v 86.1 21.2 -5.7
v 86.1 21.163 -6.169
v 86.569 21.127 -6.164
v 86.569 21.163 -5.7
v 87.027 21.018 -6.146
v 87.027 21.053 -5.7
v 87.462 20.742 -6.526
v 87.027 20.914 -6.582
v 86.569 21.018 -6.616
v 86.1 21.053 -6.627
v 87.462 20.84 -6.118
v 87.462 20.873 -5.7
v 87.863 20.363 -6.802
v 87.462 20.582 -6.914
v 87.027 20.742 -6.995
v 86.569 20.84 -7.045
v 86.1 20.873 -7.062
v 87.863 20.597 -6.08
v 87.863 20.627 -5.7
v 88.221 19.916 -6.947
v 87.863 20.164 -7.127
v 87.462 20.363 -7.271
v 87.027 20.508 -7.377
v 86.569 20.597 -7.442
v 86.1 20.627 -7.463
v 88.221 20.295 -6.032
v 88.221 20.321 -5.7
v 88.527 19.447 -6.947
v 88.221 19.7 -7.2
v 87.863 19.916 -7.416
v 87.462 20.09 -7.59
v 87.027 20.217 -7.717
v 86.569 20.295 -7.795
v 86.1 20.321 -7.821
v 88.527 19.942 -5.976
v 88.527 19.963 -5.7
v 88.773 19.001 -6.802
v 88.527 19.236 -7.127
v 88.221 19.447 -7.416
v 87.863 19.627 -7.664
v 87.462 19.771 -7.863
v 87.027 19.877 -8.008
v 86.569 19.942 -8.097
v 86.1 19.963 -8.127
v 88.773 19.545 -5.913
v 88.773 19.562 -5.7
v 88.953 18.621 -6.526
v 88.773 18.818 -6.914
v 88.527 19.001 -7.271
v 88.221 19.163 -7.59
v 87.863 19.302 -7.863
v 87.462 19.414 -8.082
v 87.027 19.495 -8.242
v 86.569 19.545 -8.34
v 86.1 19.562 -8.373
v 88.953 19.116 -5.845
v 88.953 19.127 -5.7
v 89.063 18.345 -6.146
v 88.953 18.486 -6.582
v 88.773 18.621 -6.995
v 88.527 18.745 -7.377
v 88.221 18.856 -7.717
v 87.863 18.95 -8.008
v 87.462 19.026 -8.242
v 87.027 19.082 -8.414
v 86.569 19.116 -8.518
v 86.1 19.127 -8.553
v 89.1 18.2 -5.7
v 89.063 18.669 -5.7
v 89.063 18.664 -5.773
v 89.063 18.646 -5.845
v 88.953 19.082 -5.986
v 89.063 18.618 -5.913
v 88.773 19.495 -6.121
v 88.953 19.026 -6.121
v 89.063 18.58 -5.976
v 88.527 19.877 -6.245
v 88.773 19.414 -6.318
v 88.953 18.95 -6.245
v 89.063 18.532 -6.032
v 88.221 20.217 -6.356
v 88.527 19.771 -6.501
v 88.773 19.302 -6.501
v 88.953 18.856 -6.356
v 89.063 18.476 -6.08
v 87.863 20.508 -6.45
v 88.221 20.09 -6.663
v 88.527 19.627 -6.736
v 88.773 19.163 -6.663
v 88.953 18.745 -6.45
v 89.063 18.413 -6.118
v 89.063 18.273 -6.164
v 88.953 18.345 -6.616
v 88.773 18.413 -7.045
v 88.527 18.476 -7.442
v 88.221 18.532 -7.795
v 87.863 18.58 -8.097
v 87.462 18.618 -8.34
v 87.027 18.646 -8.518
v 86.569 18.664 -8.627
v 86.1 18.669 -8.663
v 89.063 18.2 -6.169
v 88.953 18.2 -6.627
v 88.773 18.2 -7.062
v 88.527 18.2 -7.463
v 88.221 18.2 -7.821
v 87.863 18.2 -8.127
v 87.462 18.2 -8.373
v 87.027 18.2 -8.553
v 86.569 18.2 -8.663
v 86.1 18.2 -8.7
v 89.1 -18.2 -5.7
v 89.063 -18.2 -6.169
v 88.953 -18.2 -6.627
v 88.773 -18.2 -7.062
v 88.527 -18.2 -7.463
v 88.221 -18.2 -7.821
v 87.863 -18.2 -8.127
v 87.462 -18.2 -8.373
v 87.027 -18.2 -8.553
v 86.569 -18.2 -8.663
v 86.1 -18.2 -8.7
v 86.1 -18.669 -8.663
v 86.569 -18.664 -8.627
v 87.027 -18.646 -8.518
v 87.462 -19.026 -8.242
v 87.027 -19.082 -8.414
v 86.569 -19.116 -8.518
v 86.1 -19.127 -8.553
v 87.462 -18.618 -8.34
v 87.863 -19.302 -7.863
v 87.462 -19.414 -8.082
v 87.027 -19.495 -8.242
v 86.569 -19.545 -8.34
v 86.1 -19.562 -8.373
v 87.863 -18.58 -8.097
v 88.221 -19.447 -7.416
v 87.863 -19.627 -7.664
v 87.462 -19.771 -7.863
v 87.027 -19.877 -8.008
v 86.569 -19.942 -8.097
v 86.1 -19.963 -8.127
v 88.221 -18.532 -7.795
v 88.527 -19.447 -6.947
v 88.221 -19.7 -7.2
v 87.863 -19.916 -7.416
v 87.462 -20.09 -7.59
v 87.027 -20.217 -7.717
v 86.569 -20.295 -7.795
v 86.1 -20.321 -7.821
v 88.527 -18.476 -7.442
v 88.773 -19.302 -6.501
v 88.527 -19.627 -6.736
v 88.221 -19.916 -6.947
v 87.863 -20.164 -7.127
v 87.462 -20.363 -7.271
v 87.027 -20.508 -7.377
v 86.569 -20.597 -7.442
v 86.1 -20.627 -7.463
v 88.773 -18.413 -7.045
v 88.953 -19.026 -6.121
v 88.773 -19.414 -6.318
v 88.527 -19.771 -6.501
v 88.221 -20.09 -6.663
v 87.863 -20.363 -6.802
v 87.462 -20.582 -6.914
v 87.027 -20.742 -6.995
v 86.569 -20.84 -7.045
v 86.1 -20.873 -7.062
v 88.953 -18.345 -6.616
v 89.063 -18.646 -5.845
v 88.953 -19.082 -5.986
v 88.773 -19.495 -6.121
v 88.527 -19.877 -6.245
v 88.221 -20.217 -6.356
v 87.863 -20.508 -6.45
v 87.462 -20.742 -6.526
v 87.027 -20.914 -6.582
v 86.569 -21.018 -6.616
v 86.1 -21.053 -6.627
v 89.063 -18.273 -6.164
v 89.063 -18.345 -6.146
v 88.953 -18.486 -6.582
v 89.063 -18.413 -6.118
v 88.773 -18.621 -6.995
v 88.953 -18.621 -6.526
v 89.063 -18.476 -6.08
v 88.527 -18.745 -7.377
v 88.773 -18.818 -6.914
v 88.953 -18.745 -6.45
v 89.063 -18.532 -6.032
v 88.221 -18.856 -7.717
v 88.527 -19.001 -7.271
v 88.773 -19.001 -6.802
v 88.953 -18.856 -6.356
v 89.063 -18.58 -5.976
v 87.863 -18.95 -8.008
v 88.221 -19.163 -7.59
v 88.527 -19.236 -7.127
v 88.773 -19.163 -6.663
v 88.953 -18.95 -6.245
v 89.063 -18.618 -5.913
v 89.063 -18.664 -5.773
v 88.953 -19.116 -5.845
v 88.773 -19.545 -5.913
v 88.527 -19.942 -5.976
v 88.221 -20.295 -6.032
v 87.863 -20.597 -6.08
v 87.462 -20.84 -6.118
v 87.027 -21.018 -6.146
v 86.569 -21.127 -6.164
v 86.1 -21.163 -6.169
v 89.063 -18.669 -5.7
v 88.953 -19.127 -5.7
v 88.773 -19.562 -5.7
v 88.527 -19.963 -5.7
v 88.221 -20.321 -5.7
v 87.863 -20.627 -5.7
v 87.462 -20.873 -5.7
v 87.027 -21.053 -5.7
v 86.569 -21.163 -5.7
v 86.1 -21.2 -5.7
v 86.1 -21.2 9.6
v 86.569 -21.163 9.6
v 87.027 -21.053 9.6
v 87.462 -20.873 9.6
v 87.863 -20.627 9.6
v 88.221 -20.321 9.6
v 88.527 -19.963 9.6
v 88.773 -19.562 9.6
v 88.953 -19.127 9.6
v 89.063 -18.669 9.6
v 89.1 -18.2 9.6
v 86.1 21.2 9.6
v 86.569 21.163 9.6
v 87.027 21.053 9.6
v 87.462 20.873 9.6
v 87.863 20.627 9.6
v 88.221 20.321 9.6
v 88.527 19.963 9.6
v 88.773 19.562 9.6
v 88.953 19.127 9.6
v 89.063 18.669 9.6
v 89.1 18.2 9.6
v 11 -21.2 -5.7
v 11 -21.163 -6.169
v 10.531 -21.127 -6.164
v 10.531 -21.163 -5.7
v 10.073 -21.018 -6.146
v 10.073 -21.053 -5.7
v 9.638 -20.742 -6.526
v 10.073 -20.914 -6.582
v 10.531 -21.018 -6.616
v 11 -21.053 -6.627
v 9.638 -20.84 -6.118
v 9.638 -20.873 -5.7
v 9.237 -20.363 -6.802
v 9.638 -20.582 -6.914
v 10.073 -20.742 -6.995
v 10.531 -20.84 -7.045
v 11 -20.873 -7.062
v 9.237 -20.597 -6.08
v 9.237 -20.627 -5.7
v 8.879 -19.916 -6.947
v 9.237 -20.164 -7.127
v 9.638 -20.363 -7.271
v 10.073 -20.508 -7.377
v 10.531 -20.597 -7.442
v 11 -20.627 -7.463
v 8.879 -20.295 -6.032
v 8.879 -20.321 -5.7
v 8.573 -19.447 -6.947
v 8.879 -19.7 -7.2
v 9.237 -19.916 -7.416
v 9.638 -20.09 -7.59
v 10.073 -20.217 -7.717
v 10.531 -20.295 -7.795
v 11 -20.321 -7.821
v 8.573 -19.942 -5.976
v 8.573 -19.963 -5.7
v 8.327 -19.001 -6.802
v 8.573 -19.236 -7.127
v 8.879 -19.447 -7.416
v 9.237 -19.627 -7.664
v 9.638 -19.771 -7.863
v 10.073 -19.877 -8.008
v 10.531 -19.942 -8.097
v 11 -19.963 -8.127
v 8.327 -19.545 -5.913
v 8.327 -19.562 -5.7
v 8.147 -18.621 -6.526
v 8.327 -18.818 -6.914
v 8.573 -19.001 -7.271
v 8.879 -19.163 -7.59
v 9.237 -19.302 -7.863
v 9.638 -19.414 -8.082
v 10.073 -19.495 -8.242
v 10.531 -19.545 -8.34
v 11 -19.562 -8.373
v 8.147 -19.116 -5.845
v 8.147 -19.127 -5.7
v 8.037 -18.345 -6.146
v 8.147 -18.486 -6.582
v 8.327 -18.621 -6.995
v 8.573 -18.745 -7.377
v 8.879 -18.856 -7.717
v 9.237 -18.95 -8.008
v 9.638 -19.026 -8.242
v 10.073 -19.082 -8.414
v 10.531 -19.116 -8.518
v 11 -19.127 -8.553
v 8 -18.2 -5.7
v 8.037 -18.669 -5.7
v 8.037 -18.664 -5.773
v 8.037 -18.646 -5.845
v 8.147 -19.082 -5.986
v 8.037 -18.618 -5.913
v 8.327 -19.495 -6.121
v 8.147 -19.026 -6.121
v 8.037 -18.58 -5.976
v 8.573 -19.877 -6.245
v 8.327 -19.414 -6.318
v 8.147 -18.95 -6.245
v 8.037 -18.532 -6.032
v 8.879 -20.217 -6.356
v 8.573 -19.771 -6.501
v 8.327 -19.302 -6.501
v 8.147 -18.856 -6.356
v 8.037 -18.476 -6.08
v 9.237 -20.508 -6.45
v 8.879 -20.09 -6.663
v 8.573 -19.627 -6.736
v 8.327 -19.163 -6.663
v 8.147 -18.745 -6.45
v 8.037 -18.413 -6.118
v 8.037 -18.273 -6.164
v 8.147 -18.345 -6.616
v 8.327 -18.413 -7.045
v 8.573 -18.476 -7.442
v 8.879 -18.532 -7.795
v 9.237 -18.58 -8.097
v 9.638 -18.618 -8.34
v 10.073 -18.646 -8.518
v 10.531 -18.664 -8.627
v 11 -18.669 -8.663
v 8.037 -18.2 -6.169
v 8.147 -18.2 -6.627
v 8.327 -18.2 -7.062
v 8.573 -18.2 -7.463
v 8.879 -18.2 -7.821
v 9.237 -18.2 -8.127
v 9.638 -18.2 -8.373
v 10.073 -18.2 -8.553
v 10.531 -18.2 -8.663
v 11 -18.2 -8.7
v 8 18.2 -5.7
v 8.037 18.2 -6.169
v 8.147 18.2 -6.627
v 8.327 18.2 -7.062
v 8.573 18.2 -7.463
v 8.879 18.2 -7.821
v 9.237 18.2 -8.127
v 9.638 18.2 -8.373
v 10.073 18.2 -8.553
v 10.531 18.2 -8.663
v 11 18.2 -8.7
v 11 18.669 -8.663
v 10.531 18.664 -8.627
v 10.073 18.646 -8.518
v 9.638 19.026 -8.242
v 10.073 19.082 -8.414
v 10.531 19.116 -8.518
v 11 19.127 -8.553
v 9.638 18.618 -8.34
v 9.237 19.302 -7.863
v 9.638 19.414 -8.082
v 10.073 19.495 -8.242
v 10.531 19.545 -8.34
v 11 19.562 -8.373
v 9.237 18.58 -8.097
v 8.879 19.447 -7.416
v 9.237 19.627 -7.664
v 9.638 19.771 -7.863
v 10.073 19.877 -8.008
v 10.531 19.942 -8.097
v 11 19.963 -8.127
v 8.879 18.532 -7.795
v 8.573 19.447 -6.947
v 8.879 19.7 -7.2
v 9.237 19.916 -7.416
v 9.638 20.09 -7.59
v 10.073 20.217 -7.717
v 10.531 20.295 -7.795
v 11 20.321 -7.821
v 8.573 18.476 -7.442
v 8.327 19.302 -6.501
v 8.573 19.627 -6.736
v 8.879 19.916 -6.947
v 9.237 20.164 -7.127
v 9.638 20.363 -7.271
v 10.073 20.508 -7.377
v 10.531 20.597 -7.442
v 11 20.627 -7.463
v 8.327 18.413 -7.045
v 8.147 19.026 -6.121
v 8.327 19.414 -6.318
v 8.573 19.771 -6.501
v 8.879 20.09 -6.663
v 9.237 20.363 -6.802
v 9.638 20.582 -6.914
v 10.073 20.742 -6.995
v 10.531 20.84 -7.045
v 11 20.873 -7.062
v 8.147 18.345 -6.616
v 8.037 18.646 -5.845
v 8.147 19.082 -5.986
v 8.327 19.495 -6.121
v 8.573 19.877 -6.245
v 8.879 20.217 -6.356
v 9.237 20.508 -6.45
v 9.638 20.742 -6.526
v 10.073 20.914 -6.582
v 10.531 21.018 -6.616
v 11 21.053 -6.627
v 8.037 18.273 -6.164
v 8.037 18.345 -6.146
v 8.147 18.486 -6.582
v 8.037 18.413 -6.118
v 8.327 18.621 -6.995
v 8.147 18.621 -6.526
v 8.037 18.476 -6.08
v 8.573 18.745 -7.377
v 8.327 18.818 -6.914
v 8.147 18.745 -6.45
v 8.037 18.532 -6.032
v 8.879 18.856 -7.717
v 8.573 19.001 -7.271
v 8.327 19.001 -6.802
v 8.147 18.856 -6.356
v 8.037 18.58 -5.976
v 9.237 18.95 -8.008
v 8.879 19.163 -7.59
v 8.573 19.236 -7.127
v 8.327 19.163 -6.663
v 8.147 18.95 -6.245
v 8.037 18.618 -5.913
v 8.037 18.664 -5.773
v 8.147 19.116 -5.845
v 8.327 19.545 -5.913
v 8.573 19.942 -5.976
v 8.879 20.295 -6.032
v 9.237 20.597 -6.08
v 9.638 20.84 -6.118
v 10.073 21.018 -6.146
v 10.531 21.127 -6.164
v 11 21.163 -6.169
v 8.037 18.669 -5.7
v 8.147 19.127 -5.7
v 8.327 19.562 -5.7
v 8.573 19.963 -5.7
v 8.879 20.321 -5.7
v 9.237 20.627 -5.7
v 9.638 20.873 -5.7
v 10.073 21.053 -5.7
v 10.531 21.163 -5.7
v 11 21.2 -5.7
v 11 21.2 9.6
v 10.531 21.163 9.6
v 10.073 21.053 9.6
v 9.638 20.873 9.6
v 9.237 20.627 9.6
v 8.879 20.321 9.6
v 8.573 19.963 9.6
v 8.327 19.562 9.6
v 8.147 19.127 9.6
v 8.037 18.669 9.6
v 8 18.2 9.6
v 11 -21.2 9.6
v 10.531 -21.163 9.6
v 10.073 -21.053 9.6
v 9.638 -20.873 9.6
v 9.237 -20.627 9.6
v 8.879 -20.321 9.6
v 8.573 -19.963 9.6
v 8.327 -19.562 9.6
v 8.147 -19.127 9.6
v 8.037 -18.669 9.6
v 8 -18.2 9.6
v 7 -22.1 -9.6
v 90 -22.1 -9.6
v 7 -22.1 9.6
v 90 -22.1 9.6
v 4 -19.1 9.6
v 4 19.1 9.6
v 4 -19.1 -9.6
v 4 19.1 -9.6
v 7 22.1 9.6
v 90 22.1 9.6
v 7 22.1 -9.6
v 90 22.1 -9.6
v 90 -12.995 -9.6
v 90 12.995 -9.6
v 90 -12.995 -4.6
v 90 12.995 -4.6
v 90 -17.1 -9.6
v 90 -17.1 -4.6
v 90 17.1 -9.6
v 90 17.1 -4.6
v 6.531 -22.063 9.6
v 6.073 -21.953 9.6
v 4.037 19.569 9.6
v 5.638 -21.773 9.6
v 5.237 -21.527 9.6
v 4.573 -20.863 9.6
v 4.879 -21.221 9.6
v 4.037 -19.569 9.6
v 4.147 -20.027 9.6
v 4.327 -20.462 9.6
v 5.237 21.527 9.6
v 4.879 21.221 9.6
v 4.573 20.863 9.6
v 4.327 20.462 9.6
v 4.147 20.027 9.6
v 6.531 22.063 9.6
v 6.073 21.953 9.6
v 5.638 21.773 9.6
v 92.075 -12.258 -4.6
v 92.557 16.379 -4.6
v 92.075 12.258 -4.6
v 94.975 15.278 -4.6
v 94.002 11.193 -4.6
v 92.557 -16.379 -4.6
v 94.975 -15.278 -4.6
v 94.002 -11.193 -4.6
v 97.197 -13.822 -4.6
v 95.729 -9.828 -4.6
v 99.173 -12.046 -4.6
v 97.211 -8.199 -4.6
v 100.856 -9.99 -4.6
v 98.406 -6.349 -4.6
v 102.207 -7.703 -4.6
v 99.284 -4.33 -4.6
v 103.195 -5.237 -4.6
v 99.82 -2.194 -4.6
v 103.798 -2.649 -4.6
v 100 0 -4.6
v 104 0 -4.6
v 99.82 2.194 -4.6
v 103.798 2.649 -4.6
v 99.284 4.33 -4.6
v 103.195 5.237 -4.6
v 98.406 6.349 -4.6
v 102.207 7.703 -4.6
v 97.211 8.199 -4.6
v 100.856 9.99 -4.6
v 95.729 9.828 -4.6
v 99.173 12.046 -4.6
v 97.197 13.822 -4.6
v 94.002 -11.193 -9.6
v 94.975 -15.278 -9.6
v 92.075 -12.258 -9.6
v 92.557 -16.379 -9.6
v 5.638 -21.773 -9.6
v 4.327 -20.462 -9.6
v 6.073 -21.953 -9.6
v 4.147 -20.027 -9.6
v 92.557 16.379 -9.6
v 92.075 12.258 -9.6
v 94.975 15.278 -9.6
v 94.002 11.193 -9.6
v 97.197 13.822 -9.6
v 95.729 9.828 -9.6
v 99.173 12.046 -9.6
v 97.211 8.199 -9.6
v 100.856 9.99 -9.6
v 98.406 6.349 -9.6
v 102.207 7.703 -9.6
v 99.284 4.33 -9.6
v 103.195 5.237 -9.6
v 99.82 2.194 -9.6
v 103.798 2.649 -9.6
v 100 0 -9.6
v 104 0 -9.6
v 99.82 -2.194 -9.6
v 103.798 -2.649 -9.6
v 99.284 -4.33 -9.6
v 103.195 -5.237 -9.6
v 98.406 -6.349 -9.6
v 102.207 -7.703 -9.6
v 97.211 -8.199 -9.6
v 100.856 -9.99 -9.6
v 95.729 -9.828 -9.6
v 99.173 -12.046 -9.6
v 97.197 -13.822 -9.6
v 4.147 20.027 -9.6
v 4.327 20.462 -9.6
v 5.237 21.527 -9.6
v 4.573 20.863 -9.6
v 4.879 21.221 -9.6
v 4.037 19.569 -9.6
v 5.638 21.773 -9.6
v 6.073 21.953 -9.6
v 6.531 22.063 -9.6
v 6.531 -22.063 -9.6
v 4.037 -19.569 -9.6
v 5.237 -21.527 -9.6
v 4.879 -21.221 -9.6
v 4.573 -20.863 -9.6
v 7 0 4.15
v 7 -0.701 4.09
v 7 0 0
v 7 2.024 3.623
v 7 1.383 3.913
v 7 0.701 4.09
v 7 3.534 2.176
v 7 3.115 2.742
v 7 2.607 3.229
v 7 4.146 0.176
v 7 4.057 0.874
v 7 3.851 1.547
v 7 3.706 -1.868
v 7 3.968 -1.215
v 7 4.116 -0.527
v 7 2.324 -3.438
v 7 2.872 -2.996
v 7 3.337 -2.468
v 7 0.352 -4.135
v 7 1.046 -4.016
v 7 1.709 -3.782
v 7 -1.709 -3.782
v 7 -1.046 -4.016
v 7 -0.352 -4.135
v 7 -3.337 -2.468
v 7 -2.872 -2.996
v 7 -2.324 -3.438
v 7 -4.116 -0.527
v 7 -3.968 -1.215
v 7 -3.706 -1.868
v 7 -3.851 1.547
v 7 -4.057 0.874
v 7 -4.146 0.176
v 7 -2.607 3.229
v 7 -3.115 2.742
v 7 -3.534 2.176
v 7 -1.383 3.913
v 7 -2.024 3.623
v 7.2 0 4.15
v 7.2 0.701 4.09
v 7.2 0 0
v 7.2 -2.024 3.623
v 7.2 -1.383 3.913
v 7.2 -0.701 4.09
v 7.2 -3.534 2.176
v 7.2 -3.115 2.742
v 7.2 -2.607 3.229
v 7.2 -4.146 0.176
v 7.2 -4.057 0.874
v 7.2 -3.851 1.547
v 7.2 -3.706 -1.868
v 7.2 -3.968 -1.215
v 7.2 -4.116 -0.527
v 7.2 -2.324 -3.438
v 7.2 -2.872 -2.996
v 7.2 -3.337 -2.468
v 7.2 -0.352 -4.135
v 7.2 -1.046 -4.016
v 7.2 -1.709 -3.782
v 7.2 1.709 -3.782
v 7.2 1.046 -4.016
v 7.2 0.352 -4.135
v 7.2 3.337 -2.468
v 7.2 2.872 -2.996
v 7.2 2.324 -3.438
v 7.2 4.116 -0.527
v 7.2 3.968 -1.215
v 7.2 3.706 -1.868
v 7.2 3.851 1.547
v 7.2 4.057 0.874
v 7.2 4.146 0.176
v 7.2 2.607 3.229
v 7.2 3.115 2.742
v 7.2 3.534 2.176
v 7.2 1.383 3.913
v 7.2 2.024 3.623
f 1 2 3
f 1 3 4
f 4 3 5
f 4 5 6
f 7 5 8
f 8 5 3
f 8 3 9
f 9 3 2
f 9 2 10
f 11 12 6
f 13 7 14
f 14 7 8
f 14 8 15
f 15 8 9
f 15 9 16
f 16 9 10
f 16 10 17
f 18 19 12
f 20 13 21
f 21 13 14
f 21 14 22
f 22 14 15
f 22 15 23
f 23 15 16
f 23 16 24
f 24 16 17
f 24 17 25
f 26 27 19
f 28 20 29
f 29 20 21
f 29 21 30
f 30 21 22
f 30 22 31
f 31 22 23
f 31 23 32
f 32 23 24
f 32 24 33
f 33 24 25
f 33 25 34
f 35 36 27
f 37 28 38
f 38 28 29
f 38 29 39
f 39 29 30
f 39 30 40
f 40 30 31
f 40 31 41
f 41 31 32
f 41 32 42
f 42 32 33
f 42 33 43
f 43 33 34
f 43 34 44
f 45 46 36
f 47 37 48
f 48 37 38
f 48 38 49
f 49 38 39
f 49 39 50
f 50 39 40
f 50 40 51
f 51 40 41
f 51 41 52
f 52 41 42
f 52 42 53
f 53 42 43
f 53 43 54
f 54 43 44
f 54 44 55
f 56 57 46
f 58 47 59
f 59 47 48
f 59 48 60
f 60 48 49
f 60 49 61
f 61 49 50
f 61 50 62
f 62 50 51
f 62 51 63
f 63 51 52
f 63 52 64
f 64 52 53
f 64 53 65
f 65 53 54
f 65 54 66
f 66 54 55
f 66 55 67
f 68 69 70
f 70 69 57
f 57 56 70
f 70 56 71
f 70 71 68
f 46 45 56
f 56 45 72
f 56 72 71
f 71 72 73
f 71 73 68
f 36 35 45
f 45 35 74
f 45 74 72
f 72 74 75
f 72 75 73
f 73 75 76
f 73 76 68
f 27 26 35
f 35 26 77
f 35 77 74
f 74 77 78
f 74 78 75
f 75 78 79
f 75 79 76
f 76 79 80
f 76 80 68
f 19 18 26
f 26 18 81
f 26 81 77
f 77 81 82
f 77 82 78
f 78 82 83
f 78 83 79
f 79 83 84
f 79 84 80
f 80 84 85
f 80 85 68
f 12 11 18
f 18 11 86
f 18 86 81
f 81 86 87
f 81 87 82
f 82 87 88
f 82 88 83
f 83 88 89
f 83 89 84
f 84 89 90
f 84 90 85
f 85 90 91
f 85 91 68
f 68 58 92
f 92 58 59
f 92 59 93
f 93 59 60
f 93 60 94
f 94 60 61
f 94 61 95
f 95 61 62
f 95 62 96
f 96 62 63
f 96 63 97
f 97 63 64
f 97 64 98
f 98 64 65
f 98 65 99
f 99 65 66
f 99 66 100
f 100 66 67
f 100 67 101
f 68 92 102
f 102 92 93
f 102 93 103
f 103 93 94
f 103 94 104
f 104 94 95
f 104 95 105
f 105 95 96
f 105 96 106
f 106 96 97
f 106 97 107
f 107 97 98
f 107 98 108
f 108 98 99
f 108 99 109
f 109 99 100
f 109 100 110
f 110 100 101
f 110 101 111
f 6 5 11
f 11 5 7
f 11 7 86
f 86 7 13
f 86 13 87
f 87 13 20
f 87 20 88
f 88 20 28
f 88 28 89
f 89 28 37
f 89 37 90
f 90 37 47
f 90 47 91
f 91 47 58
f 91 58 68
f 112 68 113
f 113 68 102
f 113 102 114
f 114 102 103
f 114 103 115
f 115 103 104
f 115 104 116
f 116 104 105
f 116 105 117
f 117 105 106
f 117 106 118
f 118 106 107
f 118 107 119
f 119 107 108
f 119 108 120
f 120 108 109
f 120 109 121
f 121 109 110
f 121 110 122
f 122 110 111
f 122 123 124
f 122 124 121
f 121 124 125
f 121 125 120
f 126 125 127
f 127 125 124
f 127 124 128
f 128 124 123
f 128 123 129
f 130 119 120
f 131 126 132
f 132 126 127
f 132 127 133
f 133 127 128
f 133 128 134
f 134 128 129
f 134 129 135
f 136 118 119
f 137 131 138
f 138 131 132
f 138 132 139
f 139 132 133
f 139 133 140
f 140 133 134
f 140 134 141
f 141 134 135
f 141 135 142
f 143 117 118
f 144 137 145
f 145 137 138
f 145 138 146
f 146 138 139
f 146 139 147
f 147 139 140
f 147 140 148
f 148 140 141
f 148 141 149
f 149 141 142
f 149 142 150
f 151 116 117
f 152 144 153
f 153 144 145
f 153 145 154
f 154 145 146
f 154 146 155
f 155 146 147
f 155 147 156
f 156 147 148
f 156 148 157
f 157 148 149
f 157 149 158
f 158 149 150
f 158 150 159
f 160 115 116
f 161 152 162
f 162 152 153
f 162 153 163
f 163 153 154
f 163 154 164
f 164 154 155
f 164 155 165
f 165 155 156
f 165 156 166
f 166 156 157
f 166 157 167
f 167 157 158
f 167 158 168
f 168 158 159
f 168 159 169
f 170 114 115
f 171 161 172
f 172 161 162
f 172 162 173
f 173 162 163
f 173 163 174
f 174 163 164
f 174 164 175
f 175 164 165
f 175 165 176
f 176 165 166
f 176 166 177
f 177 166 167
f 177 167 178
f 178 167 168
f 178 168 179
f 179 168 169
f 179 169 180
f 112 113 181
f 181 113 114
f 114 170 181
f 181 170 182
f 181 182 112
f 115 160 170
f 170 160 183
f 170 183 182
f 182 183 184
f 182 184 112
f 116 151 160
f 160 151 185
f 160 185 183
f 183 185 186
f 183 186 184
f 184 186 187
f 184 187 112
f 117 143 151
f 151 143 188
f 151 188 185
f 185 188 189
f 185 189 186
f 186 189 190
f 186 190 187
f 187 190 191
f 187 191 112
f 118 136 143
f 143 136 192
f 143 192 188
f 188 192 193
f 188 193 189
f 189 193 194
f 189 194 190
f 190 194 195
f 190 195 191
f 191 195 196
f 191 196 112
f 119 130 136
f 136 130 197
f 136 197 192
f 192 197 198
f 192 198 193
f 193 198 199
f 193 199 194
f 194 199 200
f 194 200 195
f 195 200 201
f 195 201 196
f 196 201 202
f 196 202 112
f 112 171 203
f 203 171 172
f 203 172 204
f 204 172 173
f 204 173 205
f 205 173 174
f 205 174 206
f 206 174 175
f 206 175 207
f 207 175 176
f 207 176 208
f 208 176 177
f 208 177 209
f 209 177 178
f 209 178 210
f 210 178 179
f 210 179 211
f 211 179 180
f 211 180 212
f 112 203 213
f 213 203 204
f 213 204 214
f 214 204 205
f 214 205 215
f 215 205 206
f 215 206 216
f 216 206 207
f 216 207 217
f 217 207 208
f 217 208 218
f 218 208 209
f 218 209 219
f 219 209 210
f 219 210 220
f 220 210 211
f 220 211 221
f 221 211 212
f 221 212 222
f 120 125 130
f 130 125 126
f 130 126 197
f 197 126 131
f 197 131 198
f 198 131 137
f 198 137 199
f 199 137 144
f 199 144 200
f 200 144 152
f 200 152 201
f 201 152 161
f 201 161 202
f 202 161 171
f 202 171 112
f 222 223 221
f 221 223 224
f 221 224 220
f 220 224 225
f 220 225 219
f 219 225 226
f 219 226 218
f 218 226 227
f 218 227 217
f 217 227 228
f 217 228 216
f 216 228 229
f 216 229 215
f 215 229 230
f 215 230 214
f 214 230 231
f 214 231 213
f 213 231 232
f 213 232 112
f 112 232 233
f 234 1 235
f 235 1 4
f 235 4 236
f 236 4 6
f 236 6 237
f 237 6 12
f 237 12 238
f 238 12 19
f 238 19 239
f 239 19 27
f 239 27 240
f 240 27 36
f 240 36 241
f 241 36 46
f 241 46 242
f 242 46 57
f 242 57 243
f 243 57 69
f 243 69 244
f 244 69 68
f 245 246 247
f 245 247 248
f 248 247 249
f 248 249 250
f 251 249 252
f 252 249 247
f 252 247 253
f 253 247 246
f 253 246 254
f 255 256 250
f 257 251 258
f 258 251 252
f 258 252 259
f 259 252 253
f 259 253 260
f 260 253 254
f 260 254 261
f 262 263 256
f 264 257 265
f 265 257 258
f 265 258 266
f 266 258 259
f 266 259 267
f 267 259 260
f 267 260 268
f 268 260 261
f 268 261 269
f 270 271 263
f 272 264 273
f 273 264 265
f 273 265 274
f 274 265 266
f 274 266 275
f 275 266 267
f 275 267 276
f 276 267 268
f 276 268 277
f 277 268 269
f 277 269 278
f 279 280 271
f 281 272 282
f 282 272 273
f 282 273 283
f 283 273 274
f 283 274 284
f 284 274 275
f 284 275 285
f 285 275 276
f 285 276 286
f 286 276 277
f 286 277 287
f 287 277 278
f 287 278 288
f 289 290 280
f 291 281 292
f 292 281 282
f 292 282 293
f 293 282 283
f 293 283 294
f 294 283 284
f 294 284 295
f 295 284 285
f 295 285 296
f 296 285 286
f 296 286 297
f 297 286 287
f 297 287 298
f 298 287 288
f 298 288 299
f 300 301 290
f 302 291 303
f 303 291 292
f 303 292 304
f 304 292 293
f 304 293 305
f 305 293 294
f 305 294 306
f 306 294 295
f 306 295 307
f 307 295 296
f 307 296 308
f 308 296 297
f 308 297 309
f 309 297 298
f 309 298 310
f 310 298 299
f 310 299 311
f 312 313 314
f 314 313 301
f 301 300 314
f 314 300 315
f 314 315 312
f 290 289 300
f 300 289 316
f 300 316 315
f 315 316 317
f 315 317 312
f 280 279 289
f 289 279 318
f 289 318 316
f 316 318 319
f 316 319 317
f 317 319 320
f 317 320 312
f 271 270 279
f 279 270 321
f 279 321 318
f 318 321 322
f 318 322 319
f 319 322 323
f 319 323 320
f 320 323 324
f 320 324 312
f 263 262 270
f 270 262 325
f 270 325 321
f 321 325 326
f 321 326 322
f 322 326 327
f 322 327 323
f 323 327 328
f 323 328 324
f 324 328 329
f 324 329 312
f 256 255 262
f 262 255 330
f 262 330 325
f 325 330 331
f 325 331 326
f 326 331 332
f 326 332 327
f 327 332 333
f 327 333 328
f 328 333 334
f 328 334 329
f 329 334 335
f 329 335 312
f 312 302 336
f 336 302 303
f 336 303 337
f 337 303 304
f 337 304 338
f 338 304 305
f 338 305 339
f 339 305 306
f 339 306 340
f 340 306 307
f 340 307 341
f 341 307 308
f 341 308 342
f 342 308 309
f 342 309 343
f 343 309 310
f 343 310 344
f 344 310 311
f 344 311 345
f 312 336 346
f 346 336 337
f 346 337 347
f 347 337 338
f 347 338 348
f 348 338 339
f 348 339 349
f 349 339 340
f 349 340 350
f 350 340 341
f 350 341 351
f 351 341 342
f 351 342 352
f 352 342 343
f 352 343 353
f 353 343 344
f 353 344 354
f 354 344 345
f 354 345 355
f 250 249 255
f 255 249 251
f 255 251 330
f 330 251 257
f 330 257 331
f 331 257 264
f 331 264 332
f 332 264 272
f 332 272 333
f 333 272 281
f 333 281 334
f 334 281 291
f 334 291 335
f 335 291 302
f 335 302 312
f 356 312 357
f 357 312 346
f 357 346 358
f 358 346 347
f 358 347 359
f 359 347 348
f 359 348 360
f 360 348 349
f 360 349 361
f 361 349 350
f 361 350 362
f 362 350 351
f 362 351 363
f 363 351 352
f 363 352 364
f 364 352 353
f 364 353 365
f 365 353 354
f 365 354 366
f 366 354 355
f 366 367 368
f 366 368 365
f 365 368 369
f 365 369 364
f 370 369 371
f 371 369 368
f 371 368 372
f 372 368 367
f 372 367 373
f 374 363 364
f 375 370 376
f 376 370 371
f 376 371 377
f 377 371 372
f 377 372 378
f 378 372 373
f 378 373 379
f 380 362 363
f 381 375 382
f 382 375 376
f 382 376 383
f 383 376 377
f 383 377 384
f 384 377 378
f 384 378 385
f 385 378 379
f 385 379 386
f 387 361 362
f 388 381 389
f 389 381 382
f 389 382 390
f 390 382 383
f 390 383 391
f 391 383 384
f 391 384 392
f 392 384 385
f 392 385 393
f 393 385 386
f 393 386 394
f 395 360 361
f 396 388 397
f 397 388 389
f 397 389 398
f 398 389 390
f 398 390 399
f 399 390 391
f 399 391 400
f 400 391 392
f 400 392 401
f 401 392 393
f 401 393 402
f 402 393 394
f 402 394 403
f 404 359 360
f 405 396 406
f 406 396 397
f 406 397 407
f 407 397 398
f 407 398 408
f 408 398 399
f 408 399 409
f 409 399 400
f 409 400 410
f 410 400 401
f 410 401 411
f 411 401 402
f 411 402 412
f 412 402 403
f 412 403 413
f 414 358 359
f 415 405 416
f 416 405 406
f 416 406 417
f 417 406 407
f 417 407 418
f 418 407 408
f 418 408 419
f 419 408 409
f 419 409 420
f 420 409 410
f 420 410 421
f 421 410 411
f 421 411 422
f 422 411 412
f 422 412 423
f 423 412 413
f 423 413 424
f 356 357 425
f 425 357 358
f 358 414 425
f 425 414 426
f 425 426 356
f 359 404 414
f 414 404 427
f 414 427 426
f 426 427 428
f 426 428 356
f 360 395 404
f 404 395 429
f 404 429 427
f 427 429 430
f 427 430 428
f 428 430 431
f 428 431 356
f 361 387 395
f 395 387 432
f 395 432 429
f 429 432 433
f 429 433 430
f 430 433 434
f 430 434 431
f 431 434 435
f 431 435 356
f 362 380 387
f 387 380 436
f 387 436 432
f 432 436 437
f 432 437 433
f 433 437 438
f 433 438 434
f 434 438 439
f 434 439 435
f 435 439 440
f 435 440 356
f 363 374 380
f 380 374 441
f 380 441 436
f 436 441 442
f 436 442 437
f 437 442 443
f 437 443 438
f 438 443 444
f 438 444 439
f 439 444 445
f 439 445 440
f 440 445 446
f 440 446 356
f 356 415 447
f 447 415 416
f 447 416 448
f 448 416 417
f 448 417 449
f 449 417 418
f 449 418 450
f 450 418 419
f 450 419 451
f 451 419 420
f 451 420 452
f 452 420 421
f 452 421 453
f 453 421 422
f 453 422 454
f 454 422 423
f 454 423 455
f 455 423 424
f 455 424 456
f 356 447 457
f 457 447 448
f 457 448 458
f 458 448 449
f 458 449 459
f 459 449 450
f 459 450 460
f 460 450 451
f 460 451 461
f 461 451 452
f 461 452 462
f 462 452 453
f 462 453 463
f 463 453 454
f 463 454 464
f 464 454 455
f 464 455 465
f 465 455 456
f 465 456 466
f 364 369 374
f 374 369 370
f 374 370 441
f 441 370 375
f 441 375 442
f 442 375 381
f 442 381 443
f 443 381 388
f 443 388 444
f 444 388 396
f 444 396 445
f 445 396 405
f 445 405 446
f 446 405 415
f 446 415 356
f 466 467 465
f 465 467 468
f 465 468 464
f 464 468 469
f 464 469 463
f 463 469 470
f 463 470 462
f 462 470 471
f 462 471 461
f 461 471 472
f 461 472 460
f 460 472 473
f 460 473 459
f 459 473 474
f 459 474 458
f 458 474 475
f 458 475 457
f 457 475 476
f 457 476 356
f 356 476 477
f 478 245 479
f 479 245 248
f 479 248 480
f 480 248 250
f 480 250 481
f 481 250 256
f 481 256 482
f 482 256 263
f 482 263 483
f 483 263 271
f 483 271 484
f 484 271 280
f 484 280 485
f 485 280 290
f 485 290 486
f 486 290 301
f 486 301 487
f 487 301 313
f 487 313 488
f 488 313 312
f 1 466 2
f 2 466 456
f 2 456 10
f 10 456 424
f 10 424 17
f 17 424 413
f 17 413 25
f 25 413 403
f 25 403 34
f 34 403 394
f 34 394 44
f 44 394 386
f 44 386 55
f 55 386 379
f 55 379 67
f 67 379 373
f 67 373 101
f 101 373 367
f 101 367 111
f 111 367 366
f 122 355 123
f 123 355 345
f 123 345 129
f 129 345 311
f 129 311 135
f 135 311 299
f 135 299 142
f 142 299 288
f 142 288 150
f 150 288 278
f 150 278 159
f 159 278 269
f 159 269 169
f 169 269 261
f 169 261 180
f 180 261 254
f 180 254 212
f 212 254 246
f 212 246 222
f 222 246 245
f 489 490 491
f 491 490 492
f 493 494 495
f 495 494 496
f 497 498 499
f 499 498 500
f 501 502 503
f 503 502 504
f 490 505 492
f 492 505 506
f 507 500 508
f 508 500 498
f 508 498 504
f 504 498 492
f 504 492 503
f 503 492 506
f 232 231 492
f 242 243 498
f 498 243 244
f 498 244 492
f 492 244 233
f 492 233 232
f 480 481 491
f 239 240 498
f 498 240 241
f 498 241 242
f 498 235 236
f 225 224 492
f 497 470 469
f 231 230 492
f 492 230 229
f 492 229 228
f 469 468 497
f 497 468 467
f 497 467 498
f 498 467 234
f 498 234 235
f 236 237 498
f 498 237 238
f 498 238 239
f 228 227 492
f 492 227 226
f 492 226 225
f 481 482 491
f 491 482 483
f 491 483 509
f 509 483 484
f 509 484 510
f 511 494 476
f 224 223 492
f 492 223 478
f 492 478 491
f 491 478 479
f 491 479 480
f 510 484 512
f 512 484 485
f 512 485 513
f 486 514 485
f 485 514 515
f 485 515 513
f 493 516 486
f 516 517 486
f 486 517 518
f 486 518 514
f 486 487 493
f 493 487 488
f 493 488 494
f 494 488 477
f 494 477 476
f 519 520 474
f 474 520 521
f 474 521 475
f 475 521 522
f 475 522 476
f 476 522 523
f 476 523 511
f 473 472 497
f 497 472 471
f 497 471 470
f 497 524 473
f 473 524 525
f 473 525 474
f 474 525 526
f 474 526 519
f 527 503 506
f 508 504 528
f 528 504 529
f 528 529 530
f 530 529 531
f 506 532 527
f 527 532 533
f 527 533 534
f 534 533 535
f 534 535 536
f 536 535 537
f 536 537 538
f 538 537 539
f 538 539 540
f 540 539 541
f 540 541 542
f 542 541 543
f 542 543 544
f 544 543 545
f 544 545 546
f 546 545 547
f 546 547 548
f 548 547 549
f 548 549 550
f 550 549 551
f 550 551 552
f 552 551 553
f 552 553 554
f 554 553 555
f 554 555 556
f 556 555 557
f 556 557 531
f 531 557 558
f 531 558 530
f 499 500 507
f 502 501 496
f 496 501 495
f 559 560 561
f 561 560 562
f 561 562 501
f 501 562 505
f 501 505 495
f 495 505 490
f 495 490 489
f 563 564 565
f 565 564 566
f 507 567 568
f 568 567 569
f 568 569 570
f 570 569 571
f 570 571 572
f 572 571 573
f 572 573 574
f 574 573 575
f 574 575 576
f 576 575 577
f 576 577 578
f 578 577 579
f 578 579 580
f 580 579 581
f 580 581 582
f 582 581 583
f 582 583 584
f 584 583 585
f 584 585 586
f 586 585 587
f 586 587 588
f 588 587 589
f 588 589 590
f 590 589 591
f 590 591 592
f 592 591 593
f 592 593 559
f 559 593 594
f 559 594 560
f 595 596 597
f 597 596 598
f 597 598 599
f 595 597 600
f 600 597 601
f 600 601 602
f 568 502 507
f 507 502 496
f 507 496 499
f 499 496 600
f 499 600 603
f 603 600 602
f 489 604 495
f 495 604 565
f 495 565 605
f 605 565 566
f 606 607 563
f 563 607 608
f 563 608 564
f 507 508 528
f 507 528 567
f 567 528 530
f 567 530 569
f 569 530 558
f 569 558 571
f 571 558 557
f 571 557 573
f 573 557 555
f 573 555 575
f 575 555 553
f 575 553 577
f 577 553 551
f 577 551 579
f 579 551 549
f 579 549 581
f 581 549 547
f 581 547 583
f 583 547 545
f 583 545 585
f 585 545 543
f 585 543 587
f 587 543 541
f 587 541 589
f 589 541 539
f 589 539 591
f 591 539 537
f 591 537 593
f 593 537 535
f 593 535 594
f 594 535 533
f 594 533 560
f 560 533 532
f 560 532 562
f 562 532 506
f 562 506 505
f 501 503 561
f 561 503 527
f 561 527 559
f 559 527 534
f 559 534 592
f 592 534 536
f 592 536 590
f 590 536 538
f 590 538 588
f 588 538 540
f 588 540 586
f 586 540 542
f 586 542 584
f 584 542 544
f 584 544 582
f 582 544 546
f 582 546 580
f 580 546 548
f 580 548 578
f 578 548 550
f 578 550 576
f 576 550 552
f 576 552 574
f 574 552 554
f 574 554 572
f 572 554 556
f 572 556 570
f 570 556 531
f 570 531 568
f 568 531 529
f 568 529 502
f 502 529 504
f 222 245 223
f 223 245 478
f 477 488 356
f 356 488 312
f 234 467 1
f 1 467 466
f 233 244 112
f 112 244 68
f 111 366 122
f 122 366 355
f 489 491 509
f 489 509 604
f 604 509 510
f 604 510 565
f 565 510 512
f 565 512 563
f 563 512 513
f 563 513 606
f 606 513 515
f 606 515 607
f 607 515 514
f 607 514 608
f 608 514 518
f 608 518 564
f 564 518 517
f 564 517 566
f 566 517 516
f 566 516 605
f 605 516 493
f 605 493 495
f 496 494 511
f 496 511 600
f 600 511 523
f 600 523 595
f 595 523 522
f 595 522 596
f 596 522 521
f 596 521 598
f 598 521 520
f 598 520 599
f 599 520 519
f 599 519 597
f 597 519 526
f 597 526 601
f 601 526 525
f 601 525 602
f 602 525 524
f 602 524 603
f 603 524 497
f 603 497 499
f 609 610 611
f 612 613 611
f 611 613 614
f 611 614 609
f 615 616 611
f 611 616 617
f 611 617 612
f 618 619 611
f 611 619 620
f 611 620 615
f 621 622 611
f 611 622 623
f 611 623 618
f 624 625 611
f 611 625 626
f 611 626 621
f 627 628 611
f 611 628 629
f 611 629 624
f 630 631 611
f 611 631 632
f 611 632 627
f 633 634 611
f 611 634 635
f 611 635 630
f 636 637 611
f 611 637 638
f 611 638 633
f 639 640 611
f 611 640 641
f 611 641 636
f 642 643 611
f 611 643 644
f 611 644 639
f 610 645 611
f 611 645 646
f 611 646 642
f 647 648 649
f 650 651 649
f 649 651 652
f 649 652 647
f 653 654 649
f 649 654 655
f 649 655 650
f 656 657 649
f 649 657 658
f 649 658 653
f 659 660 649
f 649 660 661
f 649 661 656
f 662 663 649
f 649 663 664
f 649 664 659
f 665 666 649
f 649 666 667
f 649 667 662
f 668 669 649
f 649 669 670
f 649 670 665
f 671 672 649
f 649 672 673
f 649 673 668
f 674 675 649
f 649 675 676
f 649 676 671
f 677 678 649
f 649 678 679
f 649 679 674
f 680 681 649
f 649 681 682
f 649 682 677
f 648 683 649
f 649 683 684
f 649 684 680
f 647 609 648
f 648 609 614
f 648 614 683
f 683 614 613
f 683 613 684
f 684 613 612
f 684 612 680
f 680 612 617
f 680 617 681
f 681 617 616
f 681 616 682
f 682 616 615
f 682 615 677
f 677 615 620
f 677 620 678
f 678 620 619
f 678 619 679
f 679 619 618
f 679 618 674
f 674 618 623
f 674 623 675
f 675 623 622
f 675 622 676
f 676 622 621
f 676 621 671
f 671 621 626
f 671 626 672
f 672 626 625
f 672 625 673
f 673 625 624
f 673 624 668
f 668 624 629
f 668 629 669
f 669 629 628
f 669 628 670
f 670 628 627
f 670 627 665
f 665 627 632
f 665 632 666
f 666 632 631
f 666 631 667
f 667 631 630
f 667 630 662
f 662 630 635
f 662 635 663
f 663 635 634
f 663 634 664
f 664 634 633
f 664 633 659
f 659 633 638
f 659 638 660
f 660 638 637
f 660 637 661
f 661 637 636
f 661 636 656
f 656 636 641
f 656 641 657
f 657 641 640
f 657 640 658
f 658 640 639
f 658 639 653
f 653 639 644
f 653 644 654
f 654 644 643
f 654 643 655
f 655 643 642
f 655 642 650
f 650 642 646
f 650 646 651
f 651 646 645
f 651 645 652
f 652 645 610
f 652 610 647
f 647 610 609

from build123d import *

# Parameters (mm, degrees)
SKETCH_1_W                  = 86
SKETCH_1_H                  = 44.2
EXTRUDE_1_DEPTH             = 14.2
EXTRUDE_2_DEPTH             = 5
SKETCH_3_W                  = 81.1
SKETCH_3_H                  = 42.4
CUT_EXTRUDE_1_DEPTH         = 18.3
HOLE_WIZARD_8_3_8_3_1_D     = 8.3
HOLE_WIZARD_8_3_8_3_1_DEPTH = 3.2
FILLET_1_R                  = 3
FILLET_2_R                  = 3
FILLET_3_R                  = 3
FILLET_4_R                  = 3
FILLET_5_R                  = 3
EXTRUDE_START               = -3
SKETCH_6_R                  = 4.15
EXTRUDE_3_DEPTH             = 3


with BuildPart() as part:
    # Эскиз1 → Бобышка-Вытянуть1 (new body)
    with BuildSketch(Plane.XY.offset(9.6)):
        with Locations((47, 0)):
            Rectangle(SKETCH_1_W, SKETCH_1_H)
    extrude(amount=-EXTRUDE_1_DEPTH)

    # Эскиз2 → Бобышка-Вытянуть2 (add)
    with BuildSketch(Plane(origin=(0, 0, -4.6), x_dir=(-1, 0, 0), z_dir=(0, 0, -1))):
        with BuildLine():
            Line((-90, -22.1), (-90, -17.1))
            ThreePointArc((-90, -17.1), (-104, 0), (-90, 17.1))
            Line((-90, 17.1), (-90, 22.1))
            Line((-90, 22.1), (-4, 22.1))
            Line((-4, 22.1), (-4, -22.1))
            Line((-4, -22.1), (-90, -22.1))
        make_face()
        with BuildLine():
            Line((-90, -12.994779171), (-90, 12.994779171))
            ThreePointArc((-90, 12.994779171), (-100, 0), (-90, -12.994779171))
        make_face(mode=Mode.SUBTRACT)
    extrude(amount=EXTRUDE_2_DEPTH)

    # Эскиз3 → Вырез-Вытянуть1 (cut)
    with BuildSketch(Plane.XY.offset(9.6)):
        with Locations((48.55, 0)):
            Rectangle(SKETCH_3_W, SKETCH_3_H)
    extrude(amount=-CUT_EXTRUDE_1_DEPTH, mode=Mode.SUBTRACT)

    # Диаметр отверстия Ø8.3 (8.3)1
    with Locations(Plane.ZY.offset(-4)):
        with Locations((0, 0)):
            Hole(HOLE_WIZARD_8_3_8_3_1_D / 2, depth=HOLE_WIZARD_8_3_8_3_1_DEPTH)

    # Скругление1
    fillet_1_edges = [part.edges().sort_by_distance(p)[0] for p in [
        (4, -22.1, 0),
        (4, 22.1, 0),
    ]]
    fillet(fillet_1_edges, radius=FILLET_1_R)

    # Скругление2
    fillet_2_edges = [part.edges().sort_by_distance(p)[0] for p in [
        (48.55, -21.2, -8.7),
    ]]
    fillet(fillet_2_edges, radius=FILLET_2_R)

    # Скругление3
    fillet_3_edges = [part.edges().sort_by_distance(p)[0] for p in [
        (48.55, 21.2, -8.7),
    ]]
    fillet(fillet_3_edges, radius=FILLET_3_R)

    # Скругление4
    fillet_4_edges = [part.edges().sort_by_distance(p)[0] for p in [
        (8, -21.2, 1.95),
        (8, -20.321320344, -7.821320344),
        (8, 0, -8.7),
        (8, 21.2, 1.95),
        (8, 20.321320344, -7.821320344),
    ]]
    fillet(fillet_4_edges, radius=FILLET_4_R)

    # Скругление5
    fillet_5_edges = [part.edges().sort_by_distance(p)[0] for p in [
        (89.1, -21.2, 1.95),
        (89.1, 0, -8.7),
        (89.1, -20.321320344, -7.821320344),
        (89.1, 21.2, 1.95),
        (89.1, 20.321320344, -7.821320344),
    ]]
    fillet(fillet_5_edges, radius=FILLET_5_R)

    # Эскиз6 → Бобышка-Вытянуть3 (add)
    with BuildSketch(Plane.ZY.offset(-4).offset(EXTRUDE_START)):
        Circle(SKETCH_6_R)
    extrude(amount=EXTRUDE_3_DEPTH)


solid = part.part
